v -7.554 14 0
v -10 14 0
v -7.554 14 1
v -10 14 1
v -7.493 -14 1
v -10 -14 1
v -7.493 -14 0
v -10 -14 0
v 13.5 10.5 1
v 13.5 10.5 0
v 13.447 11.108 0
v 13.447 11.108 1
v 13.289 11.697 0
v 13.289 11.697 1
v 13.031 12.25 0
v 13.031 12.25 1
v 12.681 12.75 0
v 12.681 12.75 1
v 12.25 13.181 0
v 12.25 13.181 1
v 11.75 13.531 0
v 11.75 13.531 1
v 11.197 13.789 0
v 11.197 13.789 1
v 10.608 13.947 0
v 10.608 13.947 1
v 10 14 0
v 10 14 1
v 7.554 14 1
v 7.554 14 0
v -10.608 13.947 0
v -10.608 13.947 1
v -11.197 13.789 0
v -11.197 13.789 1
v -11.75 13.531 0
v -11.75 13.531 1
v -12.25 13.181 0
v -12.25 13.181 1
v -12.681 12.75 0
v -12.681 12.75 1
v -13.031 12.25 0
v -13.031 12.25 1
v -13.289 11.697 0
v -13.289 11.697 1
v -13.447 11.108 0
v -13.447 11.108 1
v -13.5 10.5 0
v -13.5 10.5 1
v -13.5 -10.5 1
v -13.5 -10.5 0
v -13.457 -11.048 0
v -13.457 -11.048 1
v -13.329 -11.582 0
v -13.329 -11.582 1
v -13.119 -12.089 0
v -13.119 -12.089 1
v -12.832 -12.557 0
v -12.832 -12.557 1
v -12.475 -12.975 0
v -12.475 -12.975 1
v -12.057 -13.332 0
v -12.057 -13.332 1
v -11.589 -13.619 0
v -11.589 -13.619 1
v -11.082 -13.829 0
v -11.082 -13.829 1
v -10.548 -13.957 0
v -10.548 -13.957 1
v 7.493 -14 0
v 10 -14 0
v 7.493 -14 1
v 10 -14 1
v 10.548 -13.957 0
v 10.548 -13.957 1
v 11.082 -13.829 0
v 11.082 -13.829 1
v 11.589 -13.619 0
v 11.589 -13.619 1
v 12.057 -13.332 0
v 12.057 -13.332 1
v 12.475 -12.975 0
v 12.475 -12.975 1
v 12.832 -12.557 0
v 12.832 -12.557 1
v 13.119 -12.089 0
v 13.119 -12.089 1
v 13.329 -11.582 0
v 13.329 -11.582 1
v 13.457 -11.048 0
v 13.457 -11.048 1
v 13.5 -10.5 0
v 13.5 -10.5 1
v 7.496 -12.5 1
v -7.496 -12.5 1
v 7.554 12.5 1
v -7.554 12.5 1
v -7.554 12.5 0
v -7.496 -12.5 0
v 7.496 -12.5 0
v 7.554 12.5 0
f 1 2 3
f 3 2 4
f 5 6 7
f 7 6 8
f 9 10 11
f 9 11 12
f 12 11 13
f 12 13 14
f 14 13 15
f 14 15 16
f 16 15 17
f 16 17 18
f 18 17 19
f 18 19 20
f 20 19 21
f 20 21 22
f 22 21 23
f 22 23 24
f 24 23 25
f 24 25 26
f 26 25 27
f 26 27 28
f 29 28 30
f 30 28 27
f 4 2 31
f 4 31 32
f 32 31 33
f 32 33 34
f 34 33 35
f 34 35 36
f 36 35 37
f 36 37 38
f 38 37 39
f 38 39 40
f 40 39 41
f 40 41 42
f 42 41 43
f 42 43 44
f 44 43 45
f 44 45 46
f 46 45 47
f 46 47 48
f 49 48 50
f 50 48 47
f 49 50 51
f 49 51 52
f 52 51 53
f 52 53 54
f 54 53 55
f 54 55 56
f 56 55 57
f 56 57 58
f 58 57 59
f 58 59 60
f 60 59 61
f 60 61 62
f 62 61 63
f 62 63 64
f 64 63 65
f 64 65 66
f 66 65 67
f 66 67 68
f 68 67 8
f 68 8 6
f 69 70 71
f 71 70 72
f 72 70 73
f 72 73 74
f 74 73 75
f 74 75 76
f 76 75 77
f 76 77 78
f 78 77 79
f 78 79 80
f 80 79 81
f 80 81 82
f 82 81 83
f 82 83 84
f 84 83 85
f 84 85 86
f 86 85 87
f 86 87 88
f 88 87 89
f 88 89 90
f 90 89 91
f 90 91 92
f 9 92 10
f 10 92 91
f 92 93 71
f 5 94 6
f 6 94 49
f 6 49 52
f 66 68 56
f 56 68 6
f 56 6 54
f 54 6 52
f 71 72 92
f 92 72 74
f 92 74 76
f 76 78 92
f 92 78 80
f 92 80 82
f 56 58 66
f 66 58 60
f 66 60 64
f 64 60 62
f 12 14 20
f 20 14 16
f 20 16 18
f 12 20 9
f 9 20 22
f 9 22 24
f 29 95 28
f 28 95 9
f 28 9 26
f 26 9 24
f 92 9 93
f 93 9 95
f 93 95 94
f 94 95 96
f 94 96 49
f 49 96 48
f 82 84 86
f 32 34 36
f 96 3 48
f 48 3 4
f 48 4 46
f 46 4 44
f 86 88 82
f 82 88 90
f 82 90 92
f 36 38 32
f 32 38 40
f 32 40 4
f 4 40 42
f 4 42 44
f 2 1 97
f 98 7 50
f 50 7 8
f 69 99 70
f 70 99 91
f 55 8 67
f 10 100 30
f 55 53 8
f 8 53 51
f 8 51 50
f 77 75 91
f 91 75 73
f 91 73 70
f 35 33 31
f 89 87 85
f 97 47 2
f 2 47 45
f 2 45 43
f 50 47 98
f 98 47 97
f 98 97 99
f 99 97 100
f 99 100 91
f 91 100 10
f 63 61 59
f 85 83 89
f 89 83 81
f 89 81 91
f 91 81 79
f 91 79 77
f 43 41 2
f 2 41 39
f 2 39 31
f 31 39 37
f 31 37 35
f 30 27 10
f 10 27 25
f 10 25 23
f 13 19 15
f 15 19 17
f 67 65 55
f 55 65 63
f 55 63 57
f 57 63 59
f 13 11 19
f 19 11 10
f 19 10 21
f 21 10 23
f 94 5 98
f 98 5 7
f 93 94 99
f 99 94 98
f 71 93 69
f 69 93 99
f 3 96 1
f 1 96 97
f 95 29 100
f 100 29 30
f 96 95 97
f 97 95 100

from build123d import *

# Parameters (mm, degrees)
BOSS_EXTRUDE1_DEPTH = 1
CUT_EXTRUDE1_REACH  = 3
SKETCH2_W           = 15.10750805
SKETCH2_H           = 1.5


with BuildPart() as part:
    # Sketch1 → Boss-Extrude1 (new body)
    with BuildSketch(Plane.XY):
        with BuildLine():
            Line((-13.5, 10.5), (-13.5, -10.5))
            ThreePointArc((-13.5, -10.5), (-12.474873734, -12.974873734), (-10, -14))
            Line((-10, -14), (10, -14))
            ThreePointArc((10, -14), (12.474873734, -12.974873734), (13.5, -10.5))
            Line((13.5, -10.5), (13.5, 10.5))
            ThreePointArc((13.5, 10.5), (12.474873734, 12.974873734), (10, 14))
            Line((10, 14), (-10, 14))
            ThreePointArc((-10, 14), (-12.474873734, 12.974873734), (-13.5, 10.5))
        make_face()
    extrude(amount=BOSS_EXTRUDE1_DEPTH)

    # Sketch2 → Cut-Extrude1 (cut, up to next)
    with BuildSketch(Plane.XY.offset(1), mode=Mode.PRIVATE) as cut_extrude1_sk1:
        with Locations((0, 13.25)):
            Rectangle(SKETCH2_W, SKETCH2_H)
    cut_extrude1_tool1 = extrude(cut_extrude1_sk1.sketch, amount=-CUT_EXTRUDE1_REACH, mode=Mode.PRIVATE) & part.part
    add(cut_extrude1_tool1.solids().sort_by_distance((0, 13.25, 1))[0], mode=Mode.SUBTRACT)
    # Sketch2 → Cut-Extrude1 (cut, up to next)
    with BuildSketch(Plane.XY.offset(1), mode=Mode.PRIVATE) as cut_extrude1_sk2:
        Polygon((-7.493203699, -14), (7.493203699, -14), (7.496447466, -12.5), (-7.496447466, -12.5), align=None)
    cut_extrude1_tool2 = extrude(cut_extrude1_sk2.sketch, amount=-CUT_EXTRUDE1_REACH, mode=Mode.PRIVATE) & part.part
    add(cut_extrude1_tool2.solids().sort_by_distance((0, -13.249946, 1))[0], mode=Mode.SUBTRACT)


solid = part.part
